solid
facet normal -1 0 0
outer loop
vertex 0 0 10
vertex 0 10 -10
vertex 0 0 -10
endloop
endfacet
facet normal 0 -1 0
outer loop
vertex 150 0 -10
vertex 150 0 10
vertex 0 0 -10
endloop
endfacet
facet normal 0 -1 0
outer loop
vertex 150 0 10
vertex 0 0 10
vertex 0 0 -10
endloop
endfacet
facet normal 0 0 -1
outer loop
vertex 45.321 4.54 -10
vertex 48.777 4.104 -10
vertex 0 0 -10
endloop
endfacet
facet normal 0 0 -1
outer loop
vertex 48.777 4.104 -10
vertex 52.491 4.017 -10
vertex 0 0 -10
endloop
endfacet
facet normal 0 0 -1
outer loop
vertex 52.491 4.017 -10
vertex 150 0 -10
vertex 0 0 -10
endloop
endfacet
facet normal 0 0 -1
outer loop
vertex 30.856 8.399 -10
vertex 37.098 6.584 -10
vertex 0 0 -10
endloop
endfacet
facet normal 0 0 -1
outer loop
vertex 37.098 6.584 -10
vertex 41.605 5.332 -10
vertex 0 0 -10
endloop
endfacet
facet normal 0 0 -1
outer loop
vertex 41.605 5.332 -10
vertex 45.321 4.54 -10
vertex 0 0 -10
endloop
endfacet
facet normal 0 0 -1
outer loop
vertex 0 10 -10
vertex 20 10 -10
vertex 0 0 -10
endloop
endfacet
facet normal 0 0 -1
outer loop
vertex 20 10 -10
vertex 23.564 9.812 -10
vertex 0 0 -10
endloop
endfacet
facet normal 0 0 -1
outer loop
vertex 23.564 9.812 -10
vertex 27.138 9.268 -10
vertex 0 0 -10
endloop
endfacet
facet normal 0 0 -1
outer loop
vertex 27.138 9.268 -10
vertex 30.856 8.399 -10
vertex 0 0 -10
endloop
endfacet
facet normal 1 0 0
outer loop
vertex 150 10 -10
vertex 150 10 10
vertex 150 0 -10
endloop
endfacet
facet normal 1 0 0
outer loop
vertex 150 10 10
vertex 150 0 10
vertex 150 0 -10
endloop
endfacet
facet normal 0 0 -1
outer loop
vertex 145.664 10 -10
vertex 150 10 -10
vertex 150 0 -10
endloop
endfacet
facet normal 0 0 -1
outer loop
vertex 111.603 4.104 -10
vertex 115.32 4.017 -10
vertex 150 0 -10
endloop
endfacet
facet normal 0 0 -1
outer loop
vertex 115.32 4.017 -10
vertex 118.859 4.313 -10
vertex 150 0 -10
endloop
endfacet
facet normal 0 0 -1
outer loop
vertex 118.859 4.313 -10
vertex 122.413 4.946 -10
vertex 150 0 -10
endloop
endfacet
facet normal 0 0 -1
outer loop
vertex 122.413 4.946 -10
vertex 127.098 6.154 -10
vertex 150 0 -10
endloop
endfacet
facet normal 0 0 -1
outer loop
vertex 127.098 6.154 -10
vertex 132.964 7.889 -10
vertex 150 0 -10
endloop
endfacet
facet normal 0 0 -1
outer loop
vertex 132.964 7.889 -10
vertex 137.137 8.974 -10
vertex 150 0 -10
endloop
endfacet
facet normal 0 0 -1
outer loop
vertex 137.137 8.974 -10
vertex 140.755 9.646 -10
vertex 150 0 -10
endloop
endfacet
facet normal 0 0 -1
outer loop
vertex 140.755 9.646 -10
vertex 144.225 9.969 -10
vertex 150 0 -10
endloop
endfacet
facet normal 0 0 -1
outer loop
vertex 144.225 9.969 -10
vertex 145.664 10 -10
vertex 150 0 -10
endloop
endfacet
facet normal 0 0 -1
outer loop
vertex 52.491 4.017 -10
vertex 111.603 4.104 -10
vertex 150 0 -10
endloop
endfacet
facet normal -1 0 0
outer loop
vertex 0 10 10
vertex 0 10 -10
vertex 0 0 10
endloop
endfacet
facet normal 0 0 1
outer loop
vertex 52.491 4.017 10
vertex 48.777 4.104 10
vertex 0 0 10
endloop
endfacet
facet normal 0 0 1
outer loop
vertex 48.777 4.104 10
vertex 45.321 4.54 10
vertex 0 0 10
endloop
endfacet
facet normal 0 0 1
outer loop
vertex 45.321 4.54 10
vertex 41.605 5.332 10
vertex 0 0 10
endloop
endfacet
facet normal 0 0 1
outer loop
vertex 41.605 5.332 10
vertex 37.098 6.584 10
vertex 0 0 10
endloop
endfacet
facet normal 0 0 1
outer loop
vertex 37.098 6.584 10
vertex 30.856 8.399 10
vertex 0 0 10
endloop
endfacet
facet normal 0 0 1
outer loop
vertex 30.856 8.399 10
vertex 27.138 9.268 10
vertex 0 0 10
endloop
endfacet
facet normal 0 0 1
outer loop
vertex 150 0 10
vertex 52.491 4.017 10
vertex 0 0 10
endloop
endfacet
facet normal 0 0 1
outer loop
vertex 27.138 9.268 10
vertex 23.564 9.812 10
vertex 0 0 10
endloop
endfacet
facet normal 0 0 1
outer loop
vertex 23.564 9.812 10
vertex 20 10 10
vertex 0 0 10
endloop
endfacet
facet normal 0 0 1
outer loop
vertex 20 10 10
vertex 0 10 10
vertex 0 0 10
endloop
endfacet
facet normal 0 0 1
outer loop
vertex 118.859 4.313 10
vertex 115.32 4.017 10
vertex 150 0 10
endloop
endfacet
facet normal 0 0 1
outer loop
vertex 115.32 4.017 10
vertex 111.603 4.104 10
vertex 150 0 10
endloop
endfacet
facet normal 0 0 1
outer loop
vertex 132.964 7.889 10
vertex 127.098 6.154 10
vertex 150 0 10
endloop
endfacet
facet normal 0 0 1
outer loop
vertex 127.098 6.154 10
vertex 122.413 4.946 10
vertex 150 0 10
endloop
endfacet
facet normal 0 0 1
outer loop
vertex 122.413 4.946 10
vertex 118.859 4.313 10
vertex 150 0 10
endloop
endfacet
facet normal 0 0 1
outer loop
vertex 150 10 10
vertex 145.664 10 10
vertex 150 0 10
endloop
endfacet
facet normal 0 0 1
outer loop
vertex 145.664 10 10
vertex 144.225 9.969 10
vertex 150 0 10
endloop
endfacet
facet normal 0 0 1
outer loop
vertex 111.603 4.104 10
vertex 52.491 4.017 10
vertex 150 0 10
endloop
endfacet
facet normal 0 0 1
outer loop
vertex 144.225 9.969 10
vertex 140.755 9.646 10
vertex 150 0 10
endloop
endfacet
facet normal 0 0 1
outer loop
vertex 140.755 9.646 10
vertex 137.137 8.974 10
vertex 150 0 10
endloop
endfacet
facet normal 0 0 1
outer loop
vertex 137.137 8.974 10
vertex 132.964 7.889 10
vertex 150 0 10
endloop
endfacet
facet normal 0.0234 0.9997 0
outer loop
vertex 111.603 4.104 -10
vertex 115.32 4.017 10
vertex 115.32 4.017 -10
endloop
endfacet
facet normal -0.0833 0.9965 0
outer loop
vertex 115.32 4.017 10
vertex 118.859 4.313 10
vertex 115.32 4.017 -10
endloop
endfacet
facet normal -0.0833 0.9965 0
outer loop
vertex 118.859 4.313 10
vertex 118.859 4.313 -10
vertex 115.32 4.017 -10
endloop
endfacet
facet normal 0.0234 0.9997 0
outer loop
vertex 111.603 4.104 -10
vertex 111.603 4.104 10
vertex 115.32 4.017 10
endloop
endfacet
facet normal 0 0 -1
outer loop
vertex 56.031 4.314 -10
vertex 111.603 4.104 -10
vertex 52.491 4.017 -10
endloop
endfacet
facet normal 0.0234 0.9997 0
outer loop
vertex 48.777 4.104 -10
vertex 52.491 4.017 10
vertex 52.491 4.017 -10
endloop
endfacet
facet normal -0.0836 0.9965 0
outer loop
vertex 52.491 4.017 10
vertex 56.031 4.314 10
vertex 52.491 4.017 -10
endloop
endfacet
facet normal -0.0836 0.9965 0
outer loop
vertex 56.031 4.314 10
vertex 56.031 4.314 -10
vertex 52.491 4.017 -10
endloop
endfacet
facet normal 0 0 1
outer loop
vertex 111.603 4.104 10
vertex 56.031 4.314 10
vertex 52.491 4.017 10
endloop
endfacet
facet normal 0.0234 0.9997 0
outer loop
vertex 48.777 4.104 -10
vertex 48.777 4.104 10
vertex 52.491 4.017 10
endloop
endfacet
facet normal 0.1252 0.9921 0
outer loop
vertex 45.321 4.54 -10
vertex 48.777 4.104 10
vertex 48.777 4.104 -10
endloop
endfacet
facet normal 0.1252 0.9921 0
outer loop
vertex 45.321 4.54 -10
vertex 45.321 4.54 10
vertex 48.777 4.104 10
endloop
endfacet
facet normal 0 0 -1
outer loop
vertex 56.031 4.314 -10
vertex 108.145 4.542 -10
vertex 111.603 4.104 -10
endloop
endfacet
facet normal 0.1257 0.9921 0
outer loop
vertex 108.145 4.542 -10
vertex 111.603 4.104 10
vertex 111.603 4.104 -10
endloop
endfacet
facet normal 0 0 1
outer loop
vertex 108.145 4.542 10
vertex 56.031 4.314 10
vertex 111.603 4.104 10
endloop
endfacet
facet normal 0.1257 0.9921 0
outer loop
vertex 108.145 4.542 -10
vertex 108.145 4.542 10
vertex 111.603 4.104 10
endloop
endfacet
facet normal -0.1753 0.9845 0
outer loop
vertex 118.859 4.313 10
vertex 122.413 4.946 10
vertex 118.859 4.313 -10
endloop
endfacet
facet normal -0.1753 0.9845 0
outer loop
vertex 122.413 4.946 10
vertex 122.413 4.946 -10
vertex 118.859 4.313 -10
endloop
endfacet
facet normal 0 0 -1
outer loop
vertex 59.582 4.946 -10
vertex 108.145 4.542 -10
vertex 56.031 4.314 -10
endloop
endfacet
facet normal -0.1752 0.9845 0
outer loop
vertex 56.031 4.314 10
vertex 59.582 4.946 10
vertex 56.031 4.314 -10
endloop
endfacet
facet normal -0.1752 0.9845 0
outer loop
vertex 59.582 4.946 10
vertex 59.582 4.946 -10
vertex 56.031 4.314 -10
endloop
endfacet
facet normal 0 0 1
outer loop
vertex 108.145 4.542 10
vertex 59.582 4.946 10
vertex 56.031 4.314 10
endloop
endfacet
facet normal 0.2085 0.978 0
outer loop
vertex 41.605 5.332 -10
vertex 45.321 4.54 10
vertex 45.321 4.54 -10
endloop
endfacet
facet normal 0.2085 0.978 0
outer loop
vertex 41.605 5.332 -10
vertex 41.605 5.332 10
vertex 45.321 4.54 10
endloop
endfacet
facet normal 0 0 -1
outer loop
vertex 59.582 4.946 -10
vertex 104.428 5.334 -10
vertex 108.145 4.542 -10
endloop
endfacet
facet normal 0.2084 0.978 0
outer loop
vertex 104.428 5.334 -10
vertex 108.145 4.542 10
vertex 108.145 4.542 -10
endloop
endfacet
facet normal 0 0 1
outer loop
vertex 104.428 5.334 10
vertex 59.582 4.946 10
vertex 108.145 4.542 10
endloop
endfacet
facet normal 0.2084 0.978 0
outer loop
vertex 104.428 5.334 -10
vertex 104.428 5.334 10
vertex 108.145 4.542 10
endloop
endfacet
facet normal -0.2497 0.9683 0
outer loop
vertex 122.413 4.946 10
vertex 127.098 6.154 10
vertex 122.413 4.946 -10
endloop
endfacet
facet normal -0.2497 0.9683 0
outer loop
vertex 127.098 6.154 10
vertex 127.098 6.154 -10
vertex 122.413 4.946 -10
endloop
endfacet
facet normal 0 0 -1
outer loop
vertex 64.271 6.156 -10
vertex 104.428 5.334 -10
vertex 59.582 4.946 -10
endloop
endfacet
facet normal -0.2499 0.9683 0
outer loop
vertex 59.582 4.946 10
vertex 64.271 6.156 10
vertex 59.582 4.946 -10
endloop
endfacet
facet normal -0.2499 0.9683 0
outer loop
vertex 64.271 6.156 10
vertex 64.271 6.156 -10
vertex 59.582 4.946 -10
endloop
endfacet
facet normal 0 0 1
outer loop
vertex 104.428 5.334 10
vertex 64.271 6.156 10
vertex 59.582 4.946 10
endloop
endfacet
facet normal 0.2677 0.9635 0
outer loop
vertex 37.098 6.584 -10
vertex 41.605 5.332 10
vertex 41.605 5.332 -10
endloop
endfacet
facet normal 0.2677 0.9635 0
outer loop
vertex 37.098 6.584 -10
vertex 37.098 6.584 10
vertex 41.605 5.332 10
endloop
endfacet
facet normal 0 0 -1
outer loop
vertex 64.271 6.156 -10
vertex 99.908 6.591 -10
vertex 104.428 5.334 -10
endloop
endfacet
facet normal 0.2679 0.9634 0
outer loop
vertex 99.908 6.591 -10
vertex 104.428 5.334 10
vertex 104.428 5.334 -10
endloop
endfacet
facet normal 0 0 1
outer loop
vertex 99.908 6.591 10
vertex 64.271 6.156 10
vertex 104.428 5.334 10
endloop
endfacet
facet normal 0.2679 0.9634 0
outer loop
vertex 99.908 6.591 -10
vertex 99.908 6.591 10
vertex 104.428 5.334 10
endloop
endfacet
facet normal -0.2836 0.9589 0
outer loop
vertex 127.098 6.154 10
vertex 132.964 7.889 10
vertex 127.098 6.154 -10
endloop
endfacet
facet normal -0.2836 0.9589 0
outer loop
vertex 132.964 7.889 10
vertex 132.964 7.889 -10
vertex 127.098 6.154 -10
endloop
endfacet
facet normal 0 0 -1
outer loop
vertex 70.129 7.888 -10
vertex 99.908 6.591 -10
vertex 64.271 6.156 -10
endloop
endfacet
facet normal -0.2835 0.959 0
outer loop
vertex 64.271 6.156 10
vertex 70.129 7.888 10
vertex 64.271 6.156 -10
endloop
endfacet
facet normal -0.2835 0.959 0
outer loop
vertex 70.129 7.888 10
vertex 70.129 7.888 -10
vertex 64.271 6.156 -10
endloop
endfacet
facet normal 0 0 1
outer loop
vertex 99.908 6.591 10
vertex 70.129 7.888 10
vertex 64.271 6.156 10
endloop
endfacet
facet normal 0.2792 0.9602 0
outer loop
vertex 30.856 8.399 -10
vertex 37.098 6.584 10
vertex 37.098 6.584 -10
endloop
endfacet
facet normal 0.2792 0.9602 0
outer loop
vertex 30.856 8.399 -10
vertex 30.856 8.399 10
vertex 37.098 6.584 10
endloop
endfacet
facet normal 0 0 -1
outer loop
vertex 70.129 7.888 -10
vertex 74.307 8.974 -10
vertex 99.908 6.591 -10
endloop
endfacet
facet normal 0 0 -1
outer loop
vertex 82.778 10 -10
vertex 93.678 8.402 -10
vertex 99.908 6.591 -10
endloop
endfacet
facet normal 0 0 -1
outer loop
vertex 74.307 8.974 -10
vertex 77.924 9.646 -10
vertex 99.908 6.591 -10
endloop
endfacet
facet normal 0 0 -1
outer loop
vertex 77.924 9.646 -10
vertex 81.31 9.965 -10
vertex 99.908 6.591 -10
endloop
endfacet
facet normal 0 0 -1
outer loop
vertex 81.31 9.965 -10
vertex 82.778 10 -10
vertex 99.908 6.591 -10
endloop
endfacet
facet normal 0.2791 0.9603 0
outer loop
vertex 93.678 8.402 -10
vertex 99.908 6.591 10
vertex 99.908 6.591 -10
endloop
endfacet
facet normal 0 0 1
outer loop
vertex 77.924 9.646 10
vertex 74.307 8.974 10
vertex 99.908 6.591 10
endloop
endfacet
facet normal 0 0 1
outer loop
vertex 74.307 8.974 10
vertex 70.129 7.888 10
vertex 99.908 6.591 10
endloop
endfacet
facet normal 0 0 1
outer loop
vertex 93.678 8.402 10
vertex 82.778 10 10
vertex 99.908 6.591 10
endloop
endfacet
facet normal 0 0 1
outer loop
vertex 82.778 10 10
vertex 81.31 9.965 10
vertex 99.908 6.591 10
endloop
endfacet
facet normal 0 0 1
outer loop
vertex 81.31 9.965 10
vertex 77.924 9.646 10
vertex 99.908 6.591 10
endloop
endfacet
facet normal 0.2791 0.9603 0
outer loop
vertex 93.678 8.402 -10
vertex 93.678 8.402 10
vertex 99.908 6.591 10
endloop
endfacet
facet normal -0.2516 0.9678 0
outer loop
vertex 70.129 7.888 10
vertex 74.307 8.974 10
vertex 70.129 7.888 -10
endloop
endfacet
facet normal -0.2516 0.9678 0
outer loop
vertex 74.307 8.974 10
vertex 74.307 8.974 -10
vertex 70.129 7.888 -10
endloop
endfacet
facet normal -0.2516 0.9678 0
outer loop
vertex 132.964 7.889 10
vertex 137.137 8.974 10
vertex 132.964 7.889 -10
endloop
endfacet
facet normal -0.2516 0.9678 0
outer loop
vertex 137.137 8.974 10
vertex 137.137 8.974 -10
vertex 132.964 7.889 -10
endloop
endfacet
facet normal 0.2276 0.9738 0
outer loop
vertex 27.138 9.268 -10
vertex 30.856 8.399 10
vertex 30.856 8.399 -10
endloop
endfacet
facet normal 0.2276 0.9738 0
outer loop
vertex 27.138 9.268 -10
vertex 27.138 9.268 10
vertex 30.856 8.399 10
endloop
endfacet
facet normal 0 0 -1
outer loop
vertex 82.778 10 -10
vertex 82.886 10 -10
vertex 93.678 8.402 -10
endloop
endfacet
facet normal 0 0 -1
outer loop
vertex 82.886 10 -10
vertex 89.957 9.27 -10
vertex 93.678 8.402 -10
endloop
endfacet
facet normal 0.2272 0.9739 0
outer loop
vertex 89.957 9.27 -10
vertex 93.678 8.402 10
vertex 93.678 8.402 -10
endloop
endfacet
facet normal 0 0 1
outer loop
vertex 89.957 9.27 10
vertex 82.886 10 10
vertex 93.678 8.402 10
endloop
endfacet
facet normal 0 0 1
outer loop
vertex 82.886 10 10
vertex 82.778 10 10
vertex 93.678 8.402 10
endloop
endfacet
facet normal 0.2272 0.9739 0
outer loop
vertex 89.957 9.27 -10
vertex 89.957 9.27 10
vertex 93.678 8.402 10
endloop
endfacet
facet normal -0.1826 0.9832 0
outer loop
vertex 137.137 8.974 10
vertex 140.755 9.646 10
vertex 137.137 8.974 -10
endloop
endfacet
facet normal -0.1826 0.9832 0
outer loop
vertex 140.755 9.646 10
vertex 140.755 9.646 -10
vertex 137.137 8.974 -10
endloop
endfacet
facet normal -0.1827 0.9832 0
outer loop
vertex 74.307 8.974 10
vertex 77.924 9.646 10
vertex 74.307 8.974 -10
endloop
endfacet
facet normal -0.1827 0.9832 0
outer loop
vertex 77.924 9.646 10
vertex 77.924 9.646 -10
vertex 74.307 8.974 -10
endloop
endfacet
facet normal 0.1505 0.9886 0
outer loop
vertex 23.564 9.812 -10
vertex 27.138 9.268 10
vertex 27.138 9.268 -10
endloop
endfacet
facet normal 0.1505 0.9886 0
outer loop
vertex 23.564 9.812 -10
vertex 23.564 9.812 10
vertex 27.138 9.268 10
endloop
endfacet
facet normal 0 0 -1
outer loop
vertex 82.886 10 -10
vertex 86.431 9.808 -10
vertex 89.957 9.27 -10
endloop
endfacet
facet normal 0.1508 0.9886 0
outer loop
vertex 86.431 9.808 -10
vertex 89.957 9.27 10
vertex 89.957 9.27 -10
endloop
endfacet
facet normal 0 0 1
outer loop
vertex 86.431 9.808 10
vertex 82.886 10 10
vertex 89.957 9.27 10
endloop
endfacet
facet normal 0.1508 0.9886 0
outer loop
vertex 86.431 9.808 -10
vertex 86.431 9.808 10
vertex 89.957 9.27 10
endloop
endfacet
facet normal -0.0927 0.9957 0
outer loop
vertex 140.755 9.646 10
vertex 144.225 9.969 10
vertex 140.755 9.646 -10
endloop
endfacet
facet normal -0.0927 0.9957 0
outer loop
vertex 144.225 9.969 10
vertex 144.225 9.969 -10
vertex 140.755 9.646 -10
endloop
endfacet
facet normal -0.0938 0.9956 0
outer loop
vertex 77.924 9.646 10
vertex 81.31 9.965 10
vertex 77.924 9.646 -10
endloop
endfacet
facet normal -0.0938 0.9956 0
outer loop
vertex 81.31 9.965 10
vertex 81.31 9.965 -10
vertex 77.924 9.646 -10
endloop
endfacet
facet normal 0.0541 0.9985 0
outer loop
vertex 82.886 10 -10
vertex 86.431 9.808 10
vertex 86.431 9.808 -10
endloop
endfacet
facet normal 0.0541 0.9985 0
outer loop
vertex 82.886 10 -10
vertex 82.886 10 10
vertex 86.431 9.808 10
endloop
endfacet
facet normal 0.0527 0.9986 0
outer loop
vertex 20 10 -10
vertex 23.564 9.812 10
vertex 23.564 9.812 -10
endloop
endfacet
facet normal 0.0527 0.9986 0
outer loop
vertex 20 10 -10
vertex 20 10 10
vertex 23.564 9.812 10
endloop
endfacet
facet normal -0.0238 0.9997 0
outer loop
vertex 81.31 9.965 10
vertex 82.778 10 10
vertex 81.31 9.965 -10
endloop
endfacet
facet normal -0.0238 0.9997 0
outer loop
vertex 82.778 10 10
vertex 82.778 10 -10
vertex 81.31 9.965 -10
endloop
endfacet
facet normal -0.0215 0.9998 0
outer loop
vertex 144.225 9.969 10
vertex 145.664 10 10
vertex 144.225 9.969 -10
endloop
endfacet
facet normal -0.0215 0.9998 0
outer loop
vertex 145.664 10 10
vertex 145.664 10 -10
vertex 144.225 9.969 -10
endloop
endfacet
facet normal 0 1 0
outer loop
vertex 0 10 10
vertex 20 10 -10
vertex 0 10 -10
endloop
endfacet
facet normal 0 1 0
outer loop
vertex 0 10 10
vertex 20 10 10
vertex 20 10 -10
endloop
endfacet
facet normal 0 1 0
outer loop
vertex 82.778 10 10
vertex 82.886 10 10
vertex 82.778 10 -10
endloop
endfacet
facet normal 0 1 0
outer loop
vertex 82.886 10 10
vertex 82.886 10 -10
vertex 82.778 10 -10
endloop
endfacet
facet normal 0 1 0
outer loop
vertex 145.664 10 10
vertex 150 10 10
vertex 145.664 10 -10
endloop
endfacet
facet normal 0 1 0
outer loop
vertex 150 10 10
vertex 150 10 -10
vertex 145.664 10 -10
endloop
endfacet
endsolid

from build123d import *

# Parameters (mm, degrees)
SKETCH1_W           = 150
SKETCH1_H           = 20
BOSS_EXTRUDE1_DEPTH = 10
CUT_EXTRUDE1_START  = -10
CUT_EXTRUDE1_DEPTH  = 20


# Read off the part's stored shape, not the designer's step: Cut-Extrude1
with BuildPart() as part:
    # Sketch1 → Boss-Extrude1 (new body)
    with BuildSketch(Plane(origin=(0, 0, 0), x_dir=(1, 0, 0), z_dir=(0, 1, 0))):
        with Locations((75, 0)):
            Rectangle(SKETCH1_W, SKETCH1_H)
    extrude(amount=BOSS_EXTRUDE1_DEPTH)

    # Cut-Extrude1 outline → Cut-Extrude1 (cut)
    with BuildSketch(Plane.XY.offset(CUT_EXTRUDE1_START)):
        with BuildLine():
            Line((145.663706144, 10), (82.885627876, 10))
            add(Edge.make_bspline(
                [(82.885627876, 10), (83.454977242, 9.99908028), (85.189856894, 9.956715888), (87.907695594, 9.701054679), (91.559145724, 8.993968627), (95.686256106, 7.87353082), (99.738781969, 6.629157705), (103.976290755, 5.384778121), (108.462250932, 4.377105952), (113.07700456, 3.880999352), (117.435005853, 4.040590194), (121.419605992, 4.675271787), (124.770171836, 5.486196921), (127.524123563, 6.268788566), (130.011090761, 7.016713264), (132.243780847, 7.687596399), (134.256371731, 8.261450185), (136.051140973, 8.727311429), (137.62554634, 9.089746646), (138.975122408, 9.362602964), (140.280663194, 9.584826082), (141.395781757, 9.73738392), (142.317885087, 9.837112449), (143.042775212, 9.899645746), (143.62744465, 9.939940775), (144.131855587, 9.966526877), (144.563142562, 9.98303354), (144.948720651, 9.992572398), (145.266405122, 9.997664685), (145.481284706, 9.999575397), (145.602944701, 10), (145.663706144, 10)],
                knots=[0.500349192, 0.500349192, 0.500349192, 0.500349192, 0.500349192, 0.515137701, 0.545413215, 0.571111647, 0.596810078, 0.626167806, 0.655525534, 0.685801031, 0.716076475, 0.746351906, 0.768391073, 0.790430241, 0.805568, 0.82070576, 0.83584352, 0.850981279, 0.859920909, 0.868860539, 0.877800169, 0.886739799, 0.894308658, 0.898093088, 0.901877518, 0.905661948, 0.909446378, 0.911338593, 0.913230808, 0.915123023, 0.917015238, 0.917015238, 0.917015238, 0.917015238, 0.917015238], degree=4))
        make_face()
        with BuildLine():
            add(Edge.make_bspline(
                [(20, 10), (20.060761442, 10), (20.182421455, 9.999575397), (20.39730103, 9.997664685), (20.714985555, 9.992572396), (21.100563711, 9.983033535), (21.531850968, 9.966526863), (22.036257221, 9.939940915), (22.620943851, 9.899645334), (23.345787497, 9.837113466), (24.096799885, 9.755896382), (24.871456236, 9.654807845), (25.840152712, 9.50702943), (26.68771304, 9.358248058), (27.532076328, 9.192071608), (28.373135333, 9.010270215), (29.044068, 8.856194438), (30.112337945, 8.597574089), (31.5728561, 8.214295395), (33.419910315, 7.687526736), (35.652632055, 7.016810348), (37.733272252, 6.390851426), (39.669106538, 5.834266358), (41.872853105, 5.249081541), (44.663768524, 4.608489653), (48.228694342, 4.040548399), (52.586705214, 3.881024842), (57.20145294, 4.377090051), (61.687417049, 5.384789657), (65.924923136, 6.629150647), (69.977450635, 7.873534607), (74.104560079, 8.993966893), (77.756009619, 9.701054871), (80.473847019, 9.956715992), (82.208725521, 9.999080282), (82.77807377, 10)],
                knots=[0.082984762, 0.082984762, 0.082984762, 0.082984762, 0.082984762, 0.084876977, 0.086769192, 0.088661407, 0.090553622, 0.094338052, 0.098122482, 0.101906912, 0.105691342, 0.113260201, 0.117730016, 0.122199831, 0.131139461, 0.135609276, 0.140079091, 0.144548906, 0.149018721, 0.16415648, 0.17929424, 0.194432, 0.209569759, 0.220589343, 0.231608927, 0.253648094, 0.283923525, 0.314198969, 0.344474466, 0.373832194, 0.403189922, 0.428888353, 0.454586785, 0.484862299, 0.499650779, 0.499650779, 0.499650779, 0.499650779, 0.499650779], degree=4))
            Line((82.77807377, 10), (20, 10))
        make_face()
    extrude(amount=CUT_EXTRUDE1_DEPTH, mode=Mode.SUBTRACT)


solid = part.part
